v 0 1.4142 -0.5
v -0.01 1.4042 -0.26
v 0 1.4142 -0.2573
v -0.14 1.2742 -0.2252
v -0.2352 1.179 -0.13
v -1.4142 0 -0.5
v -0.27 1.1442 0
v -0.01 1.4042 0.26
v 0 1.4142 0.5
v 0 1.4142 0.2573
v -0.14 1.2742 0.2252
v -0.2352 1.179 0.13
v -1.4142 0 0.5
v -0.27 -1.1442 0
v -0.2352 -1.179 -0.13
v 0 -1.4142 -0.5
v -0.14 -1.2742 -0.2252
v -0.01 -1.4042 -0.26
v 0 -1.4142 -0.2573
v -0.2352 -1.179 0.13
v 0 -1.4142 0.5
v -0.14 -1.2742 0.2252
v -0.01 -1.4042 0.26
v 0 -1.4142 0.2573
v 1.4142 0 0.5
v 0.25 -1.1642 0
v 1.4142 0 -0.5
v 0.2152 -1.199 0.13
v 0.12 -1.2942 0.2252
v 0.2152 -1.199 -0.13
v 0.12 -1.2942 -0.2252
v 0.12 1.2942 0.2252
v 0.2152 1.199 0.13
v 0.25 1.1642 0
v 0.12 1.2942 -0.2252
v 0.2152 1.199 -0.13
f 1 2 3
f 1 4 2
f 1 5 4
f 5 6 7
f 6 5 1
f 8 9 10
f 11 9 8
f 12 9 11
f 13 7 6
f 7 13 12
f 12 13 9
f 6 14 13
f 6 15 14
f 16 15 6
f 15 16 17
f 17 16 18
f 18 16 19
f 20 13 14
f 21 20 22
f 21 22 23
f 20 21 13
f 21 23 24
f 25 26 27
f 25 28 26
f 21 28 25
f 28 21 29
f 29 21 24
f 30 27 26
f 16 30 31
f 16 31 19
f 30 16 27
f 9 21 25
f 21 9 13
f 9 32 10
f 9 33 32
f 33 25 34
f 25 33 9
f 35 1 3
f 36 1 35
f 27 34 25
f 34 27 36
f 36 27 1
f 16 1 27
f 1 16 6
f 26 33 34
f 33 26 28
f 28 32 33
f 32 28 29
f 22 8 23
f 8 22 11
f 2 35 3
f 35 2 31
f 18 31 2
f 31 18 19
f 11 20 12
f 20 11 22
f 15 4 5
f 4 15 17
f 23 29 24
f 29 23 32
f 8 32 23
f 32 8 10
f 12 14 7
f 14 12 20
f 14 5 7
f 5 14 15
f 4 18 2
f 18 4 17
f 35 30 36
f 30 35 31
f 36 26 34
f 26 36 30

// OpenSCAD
difference() {
	translate([0.0,0.0,0.0]){
	rotate([90,0,-45.0]){
		cube([2.0,1.0,2.0], center = true);
	}
}

	translate([-0.01,0,0.0]){
	rotate([90,0,0]){
		cylinder($fn = 12, h = 2.83, r1 = 0.26, r2 = 0.26, center = true);
	}
}
}
